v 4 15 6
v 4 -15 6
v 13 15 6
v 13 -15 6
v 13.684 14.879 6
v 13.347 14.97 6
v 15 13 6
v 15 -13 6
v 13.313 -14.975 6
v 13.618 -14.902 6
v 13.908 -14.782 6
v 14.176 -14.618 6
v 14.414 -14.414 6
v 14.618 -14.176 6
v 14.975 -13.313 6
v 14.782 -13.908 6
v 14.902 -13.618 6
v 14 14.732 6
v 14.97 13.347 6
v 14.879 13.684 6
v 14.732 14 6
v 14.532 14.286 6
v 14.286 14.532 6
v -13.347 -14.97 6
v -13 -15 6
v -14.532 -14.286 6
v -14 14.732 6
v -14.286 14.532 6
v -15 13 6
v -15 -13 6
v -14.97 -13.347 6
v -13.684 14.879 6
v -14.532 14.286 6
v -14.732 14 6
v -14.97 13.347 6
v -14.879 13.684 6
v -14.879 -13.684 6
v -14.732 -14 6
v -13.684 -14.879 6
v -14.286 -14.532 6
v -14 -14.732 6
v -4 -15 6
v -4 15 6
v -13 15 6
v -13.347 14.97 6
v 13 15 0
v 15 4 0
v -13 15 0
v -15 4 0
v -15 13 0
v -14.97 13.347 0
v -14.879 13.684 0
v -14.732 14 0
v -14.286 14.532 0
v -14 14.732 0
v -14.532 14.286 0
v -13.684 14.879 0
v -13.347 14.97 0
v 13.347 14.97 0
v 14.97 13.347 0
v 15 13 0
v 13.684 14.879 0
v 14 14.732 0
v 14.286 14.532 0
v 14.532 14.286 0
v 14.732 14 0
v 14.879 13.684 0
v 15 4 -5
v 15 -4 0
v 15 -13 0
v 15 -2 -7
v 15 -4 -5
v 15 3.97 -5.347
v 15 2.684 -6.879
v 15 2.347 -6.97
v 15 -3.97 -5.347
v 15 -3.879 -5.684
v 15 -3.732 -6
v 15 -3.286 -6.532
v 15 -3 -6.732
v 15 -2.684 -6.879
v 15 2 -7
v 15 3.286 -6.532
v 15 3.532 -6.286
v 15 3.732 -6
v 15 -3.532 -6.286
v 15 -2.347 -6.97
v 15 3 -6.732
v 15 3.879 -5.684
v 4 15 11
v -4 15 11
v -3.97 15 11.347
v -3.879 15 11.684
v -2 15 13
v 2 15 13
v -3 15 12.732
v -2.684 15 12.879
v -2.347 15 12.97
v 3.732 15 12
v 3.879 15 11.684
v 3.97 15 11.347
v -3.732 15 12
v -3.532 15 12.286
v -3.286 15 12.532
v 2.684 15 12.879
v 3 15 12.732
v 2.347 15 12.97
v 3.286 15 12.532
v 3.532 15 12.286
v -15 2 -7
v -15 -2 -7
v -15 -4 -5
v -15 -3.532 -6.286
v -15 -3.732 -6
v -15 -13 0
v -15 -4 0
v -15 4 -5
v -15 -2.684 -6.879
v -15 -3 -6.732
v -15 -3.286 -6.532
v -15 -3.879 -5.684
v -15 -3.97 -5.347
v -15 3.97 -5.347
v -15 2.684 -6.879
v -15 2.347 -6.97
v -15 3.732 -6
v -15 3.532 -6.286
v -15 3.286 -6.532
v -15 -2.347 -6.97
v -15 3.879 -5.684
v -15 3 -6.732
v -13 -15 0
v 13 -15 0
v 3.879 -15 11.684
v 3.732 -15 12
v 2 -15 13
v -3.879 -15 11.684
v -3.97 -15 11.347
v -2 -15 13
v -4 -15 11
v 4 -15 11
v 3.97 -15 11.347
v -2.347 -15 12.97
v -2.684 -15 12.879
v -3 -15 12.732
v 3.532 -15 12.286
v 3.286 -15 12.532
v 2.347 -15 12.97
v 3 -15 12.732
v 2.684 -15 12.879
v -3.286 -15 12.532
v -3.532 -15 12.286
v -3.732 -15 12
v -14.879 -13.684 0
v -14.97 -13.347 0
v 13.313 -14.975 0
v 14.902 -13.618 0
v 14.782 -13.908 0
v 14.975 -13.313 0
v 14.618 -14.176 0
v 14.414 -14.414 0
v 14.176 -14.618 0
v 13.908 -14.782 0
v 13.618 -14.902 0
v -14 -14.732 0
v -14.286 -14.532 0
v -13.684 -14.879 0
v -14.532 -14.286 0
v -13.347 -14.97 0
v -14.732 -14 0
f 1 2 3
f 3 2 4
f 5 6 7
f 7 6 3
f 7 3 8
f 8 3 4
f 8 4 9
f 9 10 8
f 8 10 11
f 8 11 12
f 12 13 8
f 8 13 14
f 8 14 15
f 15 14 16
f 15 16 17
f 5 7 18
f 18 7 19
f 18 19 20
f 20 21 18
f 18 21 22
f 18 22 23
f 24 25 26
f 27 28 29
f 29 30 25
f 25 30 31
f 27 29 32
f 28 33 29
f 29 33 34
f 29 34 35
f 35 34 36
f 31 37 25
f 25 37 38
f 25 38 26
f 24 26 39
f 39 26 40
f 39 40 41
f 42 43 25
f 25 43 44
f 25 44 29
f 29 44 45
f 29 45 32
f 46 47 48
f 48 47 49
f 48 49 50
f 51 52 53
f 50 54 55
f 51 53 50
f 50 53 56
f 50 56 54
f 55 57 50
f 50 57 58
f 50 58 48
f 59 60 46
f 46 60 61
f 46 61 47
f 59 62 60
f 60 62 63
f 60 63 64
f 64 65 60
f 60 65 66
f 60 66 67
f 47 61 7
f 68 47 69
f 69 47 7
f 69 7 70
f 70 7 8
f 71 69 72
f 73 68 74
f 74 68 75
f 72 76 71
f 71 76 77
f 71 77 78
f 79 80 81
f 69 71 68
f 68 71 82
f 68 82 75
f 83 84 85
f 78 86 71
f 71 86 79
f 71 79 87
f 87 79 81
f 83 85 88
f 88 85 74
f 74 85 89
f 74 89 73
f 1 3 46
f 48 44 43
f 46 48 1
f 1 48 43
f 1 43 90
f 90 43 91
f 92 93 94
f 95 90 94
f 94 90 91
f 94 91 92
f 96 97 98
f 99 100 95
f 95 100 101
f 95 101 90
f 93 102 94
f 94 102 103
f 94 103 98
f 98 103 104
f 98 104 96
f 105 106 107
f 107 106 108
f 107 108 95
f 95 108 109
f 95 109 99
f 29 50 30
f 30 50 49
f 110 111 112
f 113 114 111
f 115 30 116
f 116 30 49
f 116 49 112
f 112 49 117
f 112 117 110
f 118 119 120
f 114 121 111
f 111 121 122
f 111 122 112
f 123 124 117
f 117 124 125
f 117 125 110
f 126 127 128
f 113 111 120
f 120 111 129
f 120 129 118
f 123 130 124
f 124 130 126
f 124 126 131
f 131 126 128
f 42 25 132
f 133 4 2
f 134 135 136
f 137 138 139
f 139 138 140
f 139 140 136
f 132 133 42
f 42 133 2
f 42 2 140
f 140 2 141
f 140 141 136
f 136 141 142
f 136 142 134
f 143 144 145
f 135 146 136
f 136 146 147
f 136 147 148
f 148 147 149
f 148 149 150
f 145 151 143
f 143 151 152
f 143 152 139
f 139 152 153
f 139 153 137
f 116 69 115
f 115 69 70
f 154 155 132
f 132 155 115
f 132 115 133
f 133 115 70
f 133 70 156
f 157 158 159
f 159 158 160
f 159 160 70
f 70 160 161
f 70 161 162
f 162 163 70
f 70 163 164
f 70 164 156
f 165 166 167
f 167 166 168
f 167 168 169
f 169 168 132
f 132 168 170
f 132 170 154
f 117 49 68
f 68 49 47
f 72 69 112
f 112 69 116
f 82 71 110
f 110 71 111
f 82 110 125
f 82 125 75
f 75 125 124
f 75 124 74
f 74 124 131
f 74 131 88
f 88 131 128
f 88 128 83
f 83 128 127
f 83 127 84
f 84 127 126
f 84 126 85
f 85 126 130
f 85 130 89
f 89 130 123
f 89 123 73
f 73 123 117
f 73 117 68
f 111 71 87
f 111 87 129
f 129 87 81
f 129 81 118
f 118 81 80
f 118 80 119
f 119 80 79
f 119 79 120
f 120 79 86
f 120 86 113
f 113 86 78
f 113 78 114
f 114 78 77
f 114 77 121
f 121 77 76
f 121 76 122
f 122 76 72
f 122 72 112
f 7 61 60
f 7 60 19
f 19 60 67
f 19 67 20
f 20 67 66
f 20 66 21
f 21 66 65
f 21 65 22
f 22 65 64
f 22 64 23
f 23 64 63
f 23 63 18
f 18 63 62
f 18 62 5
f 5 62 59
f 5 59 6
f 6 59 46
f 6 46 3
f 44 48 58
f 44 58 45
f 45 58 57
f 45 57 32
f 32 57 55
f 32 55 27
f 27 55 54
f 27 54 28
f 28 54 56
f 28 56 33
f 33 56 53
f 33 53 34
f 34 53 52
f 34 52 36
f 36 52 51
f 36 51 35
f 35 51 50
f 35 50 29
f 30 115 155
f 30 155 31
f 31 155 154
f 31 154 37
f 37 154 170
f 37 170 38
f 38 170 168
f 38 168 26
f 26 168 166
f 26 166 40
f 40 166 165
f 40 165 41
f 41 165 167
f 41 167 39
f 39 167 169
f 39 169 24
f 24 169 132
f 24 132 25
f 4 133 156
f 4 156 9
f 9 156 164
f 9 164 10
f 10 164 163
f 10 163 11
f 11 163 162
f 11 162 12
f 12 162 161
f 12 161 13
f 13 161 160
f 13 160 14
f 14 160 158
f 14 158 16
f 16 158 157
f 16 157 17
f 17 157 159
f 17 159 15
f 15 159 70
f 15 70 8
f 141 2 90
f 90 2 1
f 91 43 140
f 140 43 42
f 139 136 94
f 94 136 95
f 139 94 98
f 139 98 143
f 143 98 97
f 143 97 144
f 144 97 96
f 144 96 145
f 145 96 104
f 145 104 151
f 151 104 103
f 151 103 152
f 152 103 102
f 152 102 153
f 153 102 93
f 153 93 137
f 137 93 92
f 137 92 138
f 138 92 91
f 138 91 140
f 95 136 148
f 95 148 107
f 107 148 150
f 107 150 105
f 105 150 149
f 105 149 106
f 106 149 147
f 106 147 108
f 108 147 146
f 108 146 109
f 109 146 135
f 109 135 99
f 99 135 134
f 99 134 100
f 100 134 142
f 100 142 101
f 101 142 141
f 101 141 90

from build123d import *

# Parameters (mm, degrees)
SKETCH_1_W      = 30
SKETCH_1_H      = 30
EXTRUDE_1_DEPTH = 6
SKETCH_2_W      = 30
SKETCH_2_H      = 8
EXTRUDE_2_DEPTH = 7
FILLET_1_R      = 2
FILLET_2_R      = 2
SKETCH_3_W      = 8
SKETCH_3_H      = 30
EXTRUDE_3_DEPTH = 7
FILLET_3_R      = 2


with BuildPart() as part:
    # 스케치1 → 보스-돌출1 (new body)
    with BuildSketch(Plane.XY):
        Rectangle(SKETCH_1_W, SKETCH_1_H)
    extrude(amount=EXTRUDE_1_DEPTH)

    # 스케치2 → 보스-돌출2 (add)
    with BuildSketch(Plane(origin=(0, 0, 0), x_dir=(-1, 0, 0), z_dir=(0, 0, -1))):
        Rectangle(SKETCH_2_W, SKETCH_2_H)
    extrude(amount=EXTRUDE_2_DEPTH)

    # 필렛1
    fillet_1_edges = [part.edges().sort_by_distance(p)[0] for p in [
        (0, 4, -7),
        (0, -4, -7),
    ]]
    fillet(fillet_1_edges, radius=FILLET_1_R)

    # 필렛2
    fillet_2_edges = [part.edges().sort_by_distance(p)[0] for p in [
        (15, -15, 3),
        (-15, -15, 3),
        (-15, 15, 3),
        (15, 15, 3),
    ]]
    fillet(fillet_2_edges, radius=FILLET_2_R)

    # 스케치3 → 보스-돌출3 (add)
    with BuildSketch(Plane.XY.offset(6)):
        Rectangle(SKETCH_3_W, SKETCH_3_H)
    extrude(amount=EXTRUDE_3_DEPTH)

    # 필렛3
    fillet_3_edges = [part.edges().sort_by_distance(p)[0] for p in [
        (4, 0, 13),
        (-4, 0, 13),
    ]]
    fillet(fillet_3_edges, radius=FILLET_3_R)


solid = part.part
